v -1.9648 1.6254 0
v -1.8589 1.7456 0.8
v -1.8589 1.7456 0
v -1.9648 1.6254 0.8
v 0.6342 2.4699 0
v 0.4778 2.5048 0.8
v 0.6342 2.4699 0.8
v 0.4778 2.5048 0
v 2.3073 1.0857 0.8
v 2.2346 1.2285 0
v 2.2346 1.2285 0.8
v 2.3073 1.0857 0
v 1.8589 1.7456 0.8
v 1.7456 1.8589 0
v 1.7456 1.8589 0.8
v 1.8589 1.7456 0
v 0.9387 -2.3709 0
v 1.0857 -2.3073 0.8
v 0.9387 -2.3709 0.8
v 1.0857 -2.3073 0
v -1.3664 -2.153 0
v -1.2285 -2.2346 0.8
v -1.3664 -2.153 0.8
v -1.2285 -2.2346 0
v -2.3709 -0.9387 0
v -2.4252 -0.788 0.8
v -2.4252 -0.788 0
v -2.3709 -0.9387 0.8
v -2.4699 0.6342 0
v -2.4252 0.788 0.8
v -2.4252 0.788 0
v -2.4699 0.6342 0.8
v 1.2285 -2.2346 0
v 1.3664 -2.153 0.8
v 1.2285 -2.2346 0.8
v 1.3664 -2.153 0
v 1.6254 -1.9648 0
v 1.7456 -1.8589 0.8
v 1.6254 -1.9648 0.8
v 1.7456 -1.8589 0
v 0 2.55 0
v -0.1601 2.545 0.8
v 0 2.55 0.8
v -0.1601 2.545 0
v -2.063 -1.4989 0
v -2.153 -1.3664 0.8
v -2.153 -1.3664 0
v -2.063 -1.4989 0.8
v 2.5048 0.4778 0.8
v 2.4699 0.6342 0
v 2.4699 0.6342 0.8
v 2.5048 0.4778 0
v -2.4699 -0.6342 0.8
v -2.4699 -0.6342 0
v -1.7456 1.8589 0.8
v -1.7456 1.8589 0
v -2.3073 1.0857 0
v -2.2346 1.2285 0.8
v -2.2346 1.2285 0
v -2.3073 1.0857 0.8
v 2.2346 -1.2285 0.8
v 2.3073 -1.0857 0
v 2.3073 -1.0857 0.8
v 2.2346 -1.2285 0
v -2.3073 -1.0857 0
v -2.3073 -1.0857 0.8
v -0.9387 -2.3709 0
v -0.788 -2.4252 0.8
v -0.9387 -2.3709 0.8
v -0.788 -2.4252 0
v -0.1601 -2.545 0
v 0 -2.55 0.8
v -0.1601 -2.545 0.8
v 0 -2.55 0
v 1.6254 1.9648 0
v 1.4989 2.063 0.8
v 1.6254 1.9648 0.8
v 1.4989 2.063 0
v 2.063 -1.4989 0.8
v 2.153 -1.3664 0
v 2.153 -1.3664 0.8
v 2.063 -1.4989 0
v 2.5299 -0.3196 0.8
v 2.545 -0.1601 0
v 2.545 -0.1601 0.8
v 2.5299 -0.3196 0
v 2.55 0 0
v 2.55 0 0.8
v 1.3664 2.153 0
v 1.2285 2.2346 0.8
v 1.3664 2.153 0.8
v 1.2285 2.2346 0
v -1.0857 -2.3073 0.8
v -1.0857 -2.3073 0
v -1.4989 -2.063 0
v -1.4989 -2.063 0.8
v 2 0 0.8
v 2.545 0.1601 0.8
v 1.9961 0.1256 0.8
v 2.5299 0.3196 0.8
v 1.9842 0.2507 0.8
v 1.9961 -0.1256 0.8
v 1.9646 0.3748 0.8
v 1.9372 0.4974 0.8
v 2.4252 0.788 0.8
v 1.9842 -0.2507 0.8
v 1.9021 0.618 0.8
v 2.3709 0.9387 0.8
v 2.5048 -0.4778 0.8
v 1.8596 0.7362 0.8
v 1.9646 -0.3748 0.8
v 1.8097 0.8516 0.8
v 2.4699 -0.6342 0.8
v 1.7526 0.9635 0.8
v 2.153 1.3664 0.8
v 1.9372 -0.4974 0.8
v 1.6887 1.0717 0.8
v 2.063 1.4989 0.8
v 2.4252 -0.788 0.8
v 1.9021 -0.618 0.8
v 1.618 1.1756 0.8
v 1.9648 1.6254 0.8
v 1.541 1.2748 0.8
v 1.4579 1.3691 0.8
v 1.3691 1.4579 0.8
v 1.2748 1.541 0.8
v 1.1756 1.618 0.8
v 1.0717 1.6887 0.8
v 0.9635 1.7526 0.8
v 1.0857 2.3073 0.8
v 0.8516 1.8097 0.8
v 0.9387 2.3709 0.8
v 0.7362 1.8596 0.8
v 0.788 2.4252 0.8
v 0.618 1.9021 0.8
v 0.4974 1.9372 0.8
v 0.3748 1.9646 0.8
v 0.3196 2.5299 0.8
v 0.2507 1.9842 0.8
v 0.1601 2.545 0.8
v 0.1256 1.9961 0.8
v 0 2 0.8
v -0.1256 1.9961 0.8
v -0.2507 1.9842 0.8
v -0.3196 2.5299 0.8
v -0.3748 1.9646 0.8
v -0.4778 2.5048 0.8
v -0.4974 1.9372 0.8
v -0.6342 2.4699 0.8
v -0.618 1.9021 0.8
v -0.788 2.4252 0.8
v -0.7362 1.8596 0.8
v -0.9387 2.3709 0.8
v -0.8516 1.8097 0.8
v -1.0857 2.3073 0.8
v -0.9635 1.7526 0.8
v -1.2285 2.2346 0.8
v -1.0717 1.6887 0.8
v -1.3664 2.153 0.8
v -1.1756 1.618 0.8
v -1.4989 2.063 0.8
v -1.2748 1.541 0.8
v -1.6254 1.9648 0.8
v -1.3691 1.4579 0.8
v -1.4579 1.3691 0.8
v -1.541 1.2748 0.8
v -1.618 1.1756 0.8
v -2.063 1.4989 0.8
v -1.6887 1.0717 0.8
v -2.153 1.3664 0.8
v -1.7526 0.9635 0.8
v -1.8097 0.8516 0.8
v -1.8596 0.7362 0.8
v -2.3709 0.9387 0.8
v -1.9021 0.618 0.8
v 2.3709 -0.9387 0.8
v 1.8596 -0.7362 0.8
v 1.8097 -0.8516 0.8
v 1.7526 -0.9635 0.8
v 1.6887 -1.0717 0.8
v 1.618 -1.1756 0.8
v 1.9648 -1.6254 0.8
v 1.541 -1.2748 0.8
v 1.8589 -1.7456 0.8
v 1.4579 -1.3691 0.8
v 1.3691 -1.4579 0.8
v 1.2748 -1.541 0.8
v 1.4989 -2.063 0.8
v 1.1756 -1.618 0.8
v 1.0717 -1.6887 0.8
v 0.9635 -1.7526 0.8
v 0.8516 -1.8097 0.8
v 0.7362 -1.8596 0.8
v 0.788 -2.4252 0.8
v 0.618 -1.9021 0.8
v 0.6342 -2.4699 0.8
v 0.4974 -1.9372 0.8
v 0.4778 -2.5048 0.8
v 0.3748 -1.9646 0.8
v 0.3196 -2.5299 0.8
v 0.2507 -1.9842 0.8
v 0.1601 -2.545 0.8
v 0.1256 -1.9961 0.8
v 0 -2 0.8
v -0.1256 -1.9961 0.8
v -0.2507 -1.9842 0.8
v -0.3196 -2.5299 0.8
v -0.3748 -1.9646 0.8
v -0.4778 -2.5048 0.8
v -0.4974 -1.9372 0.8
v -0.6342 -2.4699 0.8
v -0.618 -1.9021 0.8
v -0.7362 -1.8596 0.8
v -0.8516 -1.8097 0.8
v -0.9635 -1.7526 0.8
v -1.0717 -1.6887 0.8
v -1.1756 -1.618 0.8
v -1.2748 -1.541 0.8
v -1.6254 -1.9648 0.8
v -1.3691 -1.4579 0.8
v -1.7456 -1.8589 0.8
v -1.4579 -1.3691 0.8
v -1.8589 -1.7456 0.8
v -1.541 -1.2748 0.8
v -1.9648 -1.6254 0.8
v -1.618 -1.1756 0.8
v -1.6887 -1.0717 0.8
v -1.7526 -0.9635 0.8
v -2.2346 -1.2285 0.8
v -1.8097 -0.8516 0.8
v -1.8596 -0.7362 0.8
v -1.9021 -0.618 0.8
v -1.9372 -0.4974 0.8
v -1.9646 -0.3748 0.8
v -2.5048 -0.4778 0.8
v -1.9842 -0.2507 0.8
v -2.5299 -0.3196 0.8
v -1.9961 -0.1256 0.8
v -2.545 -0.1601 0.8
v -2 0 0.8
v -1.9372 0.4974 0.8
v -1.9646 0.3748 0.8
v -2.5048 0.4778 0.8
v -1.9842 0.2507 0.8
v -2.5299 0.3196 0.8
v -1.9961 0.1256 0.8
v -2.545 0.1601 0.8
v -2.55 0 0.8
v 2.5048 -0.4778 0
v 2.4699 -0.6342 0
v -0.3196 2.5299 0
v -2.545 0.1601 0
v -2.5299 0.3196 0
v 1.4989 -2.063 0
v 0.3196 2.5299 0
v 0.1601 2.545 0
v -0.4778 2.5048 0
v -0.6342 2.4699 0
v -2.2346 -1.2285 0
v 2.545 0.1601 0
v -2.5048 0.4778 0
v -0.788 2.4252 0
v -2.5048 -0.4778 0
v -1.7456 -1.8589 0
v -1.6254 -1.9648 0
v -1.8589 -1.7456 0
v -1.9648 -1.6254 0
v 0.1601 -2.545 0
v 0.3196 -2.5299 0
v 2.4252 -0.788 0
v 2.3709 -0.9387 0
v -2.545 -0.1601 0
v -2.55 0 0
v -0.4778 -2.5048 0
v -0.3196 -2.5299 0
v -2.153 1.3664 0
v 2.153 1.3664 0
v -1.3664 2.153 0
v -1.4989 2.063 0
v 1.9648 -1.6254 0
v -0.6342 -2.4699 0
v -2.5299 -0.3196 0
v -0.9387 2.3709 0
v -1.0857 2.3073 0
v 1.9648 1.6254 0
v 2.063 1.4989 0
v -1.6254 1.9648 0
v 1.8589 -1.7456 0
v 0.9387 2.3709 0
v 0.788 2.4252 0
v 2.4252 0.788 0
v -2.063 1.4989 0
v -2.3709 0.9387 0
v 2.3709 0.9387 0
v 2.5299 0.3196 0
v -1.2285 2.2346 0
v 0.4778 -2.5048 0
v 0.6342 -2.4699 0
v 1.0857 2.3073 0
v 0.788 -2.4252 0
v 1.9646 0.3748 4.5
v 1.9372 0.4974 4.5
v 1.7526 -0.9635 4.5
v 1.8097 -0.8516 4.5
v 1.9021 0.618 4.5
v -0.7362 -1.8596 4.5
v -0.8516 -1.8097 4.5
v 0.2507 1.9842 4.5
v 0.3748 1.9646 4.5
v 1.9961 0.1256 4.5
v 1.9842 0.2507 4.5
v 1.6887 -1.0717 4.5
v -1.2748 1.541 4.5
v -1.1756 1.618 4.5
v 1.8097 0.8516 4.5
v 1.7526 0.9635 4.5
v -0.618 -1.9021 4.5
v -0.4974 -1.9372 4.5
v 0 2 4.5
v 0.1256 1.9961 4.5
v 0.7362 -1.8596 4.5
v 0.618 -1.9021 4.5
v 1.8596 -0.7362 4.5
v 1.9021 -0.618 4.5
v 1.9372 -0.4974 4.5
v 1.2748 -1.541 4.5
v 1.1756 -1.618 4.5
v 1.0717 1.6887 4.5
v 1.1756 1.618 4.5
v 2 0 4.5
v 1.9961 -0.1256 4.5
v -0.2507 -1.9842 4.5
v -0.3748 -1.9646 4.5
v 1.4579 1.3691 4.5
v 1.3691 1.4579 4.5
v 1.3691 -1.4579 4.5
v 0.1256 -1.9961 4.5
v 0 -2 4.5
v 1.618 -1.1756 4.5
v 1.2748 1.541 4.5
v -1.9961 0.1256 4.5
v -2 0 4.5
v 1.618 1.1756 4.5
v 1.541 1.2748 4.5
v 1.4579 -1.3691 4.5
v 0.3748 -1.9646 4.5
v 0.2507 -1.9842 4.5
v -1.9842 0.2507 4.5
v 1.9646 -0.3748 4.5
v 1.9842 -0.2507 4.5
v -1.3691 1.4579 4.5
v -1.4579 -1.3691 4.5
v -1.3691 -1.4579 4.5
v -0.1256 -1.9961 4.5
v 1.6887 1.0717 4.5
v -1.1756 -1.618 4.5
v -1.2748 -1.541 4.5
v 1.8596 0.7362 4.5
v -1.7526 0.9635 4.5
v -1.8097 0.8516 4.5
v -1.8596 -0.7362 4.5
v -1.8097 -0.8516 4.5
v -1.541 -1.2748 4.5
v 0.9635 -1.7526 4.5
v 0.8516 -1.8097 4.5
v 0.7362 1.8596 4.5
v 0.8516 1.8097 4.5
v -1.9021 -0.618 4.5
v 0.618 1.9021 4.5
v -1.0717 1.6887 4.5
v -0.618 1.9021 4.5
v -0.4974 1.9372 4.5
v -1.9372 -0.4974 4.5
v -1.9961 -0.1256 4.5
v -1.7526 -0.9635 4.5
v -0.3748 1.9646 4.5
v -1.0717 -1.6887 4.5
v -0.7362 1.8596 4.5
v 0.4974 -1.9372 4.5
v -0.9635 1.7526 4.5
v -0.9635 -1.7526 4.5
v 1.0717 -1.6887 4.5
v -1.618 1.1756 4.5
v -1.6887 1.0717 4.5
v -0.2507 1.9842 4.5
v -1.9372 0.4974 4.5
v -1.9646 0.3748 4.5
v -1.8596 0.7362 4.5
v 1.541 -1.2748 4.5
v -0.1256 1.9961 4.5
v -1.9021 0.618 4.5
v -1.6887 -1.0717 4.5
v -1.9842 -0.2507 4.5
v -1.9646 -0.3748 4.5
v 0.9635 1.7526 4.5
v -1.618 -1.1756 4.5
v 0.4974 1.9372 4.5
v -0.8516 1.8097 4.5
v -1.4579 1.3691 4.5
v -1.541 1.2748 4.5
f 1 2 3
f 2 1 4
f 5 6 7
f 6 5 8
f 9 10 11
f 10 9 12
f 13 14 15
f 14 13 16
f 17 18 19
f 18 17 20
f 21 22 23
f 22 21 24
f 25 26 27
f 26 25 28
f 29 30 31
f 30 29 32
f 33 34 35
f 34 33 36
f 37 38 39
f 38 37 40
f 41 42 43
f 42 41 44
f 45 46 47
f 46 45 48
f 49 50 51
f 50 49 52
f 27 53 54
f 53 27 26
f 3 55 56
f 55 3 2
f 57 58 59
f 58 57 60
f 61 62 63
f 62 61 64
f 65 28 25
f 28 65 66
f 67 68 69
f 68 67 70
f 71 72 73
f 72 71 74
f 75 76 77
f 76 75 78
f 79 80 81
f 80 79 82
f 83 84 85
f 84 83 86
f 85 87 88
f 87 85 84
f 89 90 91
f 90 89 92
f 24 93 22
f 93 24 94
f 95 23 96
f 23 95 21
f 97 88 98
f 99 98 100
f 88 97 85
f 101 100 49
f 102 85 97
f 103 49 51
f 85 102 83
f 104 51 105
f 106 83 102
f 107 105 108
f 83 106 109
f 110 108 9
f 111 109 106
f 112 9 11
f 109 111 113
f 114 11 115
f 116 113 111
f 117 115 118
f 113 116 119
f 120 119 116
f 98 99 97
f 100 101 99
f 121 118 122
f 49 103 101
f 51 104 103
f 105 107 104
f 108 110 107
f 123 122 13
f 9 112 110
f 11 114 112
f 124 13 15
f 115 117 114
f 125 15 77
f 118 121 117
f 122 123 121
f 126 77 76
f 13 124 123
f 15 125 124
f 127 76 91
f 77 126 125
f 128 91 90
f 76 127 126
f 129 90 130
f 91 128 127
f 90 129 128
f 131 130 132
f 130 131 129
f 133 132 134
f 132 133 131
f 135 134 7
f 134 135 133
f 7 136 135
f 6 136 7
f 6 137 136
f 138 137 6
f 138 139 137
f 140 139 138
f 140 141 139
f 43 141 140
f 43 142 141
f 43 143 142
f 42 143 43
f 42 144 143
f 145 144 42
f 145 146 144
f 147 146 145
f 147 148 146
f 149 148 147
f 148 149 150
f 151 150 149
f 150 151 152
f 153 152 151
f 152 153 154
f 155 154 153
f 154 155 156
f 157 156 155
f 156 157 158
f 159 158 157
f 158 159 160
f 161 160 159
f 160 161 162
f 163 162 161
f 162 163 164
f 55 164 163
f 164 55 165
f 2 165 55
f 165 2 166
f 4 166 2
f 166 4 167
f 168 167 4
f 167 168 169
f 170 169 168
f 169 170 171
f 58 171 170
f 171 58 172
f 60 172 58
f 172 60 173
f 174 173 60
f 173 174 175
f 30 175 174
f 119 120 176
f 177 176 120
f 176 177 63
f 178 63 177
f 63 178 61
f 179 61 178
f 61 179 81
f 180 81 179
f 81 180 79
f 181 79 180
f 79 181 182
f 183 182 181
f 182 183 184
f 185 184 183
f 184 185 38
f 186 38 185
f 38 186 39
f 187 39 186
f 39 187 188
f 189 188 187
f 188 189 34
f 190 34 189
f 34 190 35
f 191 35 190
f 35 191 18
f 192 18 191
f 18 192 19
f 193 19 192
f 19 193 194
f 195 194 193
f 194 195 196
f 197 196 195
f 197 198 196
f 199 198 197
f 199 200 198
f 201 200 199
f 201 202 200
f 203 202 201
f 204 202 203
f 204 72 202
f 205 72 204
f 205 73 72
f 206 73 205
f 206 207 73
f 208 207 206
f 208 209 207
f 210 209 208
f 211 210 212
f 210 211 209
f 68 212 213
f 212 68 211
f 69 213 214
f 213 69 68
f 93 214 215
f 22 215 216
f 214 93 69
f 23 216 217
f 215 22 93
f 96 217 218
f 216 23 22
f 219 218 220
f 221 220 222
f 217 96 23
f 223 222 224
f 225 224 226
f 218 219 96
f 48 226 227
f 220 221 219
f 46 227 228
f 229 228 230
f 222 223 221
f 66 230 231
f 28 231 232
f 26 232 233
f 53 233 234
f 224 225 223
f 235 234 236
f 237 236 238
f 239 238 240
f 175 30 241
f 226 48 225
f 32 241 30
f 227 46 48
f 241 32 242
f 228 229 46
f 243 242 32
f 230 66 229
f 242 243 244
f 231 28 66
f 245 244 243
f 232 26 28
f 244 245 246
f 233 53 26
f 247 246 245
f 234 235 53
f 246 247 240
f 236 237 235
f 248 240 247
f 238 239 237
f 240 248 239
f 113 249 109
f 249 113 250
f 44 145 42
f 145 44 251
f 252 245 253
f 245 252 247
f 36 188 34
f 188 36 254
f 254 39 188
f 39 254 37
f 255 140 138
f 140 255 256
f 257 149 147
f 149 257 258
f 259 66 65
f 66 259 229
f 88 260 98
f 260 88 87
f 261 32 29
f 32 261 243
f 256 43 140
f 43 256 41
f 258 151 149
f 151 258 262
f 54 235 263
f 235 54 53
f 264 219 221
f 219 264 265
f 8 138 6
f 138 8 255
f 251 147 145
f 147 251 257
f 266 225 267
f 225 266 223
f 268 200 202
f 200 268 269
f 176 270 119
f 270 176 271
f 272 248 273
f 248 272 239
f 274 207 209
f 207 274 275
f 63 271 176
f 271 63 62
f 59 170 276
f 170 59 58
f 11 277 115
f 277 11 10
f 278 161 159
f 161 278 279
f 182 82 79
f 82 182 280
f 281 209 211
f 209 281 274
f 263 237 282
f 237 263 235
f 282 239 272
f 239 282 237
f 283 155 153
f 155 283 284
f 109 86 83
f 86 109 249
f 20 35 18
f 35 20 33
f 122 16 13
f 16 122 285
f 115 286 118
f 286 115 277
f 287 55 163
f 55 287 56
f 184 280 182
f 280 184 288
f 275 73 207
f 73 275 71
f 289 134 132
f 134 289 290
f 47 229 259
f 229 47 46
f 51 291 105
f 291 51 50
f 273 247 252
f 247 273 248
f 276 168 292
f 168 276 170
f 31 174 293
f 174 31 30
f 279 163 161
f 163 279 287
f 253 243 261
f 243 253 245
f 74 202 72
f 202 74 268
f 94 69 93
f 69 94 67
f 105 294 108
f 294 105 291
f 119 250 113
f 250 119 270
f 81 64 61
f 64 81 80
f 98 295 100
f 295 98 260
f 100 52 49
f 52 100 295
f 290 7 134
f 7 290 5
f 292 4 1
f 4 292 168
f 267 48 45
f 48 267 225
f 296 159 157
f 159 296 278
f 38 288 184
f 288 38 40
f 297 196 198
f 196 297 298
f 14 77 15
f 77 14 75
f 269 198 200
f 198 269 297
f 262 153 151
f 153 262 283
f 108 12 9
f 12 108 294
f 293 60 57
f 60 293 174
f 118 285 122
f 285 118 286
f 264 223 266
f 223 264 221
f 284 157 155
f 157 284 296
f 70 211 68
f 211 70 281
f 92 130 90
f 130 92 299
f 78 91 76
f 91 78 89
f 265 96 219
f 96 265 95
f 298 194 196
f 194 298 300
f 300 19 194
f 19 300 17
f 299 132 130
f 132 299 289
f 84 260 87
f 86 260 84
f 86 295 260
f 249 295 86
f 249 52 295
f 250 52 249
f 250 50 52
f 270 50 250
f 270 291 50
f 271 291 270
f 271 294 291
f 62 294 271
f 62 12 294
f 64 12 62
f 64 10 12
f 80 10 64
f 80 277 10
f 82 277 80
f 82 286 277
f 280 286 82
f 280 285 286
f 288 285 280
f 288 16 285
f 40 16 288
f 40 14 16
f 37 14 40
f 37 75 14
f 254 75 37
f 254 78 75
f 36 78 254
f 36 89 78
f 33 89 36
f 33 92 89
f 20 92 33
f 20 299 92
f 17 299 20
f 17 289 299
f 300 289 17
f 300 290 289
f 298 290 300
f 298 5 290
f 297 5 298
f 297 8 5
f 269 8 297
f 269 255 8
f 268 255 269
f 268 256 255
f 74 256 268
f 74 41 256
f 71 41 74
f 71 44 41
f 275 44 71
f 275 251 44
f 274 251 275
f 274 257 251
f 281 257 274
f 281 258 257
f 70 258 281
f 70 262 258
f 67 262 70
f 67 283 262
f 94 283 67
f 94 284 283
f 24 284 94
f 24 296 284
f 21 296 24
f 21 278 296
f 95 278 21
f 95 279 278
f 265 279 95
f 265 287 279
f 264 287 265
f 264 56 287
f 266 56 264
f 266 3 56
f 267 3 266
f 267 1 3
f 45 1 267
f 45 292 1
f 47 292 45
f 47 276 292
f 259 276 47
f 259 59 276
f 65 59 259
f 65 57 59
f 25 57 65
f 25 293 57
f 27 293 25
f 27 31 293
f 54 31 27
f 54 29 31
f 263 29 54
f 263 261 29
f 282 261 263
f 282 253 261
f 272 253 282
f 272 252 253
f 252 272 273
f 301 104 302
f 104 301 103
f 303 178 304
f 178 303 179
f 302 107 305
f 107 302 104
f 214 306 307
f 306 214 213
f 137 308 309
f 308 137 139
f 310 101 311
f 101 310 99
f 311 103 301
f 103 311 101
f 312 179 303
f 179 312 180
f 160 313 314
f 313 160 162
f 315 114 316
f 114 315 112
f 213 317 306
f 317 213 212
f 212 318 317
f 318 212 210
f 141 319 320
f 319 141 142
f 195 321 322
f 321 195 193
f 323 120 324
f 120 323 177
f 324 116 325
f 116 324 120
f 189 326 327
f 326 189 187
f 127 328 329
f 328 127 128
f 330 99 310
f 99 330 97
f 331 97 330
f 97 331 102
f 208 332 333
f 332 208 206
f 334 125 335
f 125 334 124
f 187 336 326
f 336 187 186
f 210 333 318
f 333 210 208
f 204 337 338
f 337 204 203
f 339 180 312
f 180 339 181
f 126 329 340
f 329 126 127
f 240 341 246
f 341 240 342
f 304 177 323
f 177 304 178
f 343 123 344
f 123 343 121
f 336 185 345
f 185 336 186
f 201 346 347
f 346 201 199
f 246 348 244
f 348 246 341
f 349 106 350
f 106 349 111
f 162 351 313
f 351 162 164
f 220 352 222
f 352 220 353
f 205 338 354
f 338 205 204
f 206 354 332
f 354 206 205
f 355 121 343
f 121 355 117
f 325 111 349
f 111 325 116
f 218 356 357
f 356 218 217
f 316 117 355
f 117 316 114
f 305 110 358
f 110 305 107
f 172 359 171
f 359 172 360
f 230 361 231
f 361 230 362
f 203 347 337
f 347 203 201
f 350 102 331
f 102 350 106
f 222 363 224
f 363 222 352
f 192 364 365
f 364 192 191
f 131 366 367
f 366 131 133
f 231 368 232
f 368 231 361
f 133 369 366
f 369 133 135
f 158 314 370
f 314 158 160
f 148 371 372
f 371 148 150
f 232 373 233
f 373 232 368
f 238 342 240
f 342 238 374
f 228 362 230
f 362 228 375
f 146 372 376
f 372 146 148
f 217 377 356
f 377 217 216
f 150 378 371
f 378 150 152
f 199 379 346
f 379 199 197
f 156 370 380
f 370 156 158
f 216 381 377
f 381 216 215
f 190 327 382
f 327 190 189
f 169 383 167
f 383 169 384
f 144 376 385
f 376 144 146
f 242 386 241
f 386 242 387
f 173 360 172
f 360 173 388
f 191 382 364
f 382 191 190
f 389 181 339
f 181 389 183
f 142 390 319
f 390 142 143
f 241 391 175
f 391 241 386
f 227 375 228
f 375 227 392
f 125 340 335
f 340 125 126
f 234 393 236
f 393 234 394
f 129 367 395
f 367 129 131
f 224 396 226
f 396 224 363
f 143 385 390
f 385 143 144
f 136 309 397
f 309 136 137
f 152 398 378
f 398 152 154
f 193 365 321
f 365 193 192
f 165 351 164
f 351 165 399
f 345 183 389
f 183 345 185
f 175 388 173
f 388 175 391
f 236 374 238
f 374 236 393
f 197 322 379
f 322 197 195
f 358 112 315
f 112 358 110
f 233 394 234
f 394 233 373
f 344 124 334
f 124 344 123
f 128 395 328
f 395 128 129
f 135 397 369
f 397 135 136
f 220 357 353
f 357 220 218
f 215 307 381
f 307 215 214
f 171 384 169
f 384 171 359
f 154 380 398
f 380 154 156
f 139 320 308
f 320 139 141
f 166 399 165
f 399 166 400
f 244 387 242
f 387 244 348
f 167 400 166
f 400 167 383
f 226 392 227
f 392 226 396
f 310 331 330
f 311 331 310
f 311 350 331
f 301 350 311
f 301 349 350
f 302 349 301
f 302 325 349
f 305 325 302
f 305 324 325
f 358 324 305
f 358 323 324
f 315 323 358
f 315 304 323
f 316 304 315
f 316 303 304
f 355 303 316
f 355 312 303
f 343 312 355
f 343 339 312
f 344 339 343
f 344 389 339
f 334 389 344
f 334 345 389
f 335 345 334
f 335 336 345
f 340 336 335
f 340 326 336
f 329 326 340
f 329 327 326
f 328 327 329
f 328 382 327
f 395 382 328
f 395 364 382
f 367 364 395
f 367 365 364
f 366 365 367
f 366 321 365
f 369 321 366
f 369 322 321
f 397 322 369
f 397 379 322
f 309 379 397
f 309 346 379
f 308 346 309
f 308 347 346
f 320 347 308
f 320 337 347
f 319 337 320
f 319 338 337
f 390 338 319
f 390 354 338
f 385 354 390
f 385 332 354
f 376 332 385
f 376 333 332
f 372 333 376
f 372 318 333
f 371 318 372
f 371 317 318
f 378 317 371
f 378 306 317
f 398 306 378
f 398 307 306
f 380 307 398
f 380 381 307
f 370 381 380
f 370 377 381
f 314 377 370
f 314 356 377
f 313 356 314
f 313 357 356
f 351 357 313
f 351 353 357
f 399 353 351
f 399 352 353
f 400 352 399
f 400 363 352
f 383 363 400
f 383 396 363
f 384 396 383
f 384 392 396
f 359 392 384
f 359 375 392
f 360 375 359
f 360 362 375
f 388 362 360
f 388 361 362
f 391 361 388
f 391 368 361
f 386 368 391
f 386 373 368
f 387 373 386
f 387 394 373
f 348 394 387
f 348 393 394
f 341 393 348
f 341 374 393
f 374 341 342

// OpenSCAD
$fn = 100;

linear_extrude(0.8)
circle(d=5.1);

linear_extrude(4.5)
circle(d=4);
